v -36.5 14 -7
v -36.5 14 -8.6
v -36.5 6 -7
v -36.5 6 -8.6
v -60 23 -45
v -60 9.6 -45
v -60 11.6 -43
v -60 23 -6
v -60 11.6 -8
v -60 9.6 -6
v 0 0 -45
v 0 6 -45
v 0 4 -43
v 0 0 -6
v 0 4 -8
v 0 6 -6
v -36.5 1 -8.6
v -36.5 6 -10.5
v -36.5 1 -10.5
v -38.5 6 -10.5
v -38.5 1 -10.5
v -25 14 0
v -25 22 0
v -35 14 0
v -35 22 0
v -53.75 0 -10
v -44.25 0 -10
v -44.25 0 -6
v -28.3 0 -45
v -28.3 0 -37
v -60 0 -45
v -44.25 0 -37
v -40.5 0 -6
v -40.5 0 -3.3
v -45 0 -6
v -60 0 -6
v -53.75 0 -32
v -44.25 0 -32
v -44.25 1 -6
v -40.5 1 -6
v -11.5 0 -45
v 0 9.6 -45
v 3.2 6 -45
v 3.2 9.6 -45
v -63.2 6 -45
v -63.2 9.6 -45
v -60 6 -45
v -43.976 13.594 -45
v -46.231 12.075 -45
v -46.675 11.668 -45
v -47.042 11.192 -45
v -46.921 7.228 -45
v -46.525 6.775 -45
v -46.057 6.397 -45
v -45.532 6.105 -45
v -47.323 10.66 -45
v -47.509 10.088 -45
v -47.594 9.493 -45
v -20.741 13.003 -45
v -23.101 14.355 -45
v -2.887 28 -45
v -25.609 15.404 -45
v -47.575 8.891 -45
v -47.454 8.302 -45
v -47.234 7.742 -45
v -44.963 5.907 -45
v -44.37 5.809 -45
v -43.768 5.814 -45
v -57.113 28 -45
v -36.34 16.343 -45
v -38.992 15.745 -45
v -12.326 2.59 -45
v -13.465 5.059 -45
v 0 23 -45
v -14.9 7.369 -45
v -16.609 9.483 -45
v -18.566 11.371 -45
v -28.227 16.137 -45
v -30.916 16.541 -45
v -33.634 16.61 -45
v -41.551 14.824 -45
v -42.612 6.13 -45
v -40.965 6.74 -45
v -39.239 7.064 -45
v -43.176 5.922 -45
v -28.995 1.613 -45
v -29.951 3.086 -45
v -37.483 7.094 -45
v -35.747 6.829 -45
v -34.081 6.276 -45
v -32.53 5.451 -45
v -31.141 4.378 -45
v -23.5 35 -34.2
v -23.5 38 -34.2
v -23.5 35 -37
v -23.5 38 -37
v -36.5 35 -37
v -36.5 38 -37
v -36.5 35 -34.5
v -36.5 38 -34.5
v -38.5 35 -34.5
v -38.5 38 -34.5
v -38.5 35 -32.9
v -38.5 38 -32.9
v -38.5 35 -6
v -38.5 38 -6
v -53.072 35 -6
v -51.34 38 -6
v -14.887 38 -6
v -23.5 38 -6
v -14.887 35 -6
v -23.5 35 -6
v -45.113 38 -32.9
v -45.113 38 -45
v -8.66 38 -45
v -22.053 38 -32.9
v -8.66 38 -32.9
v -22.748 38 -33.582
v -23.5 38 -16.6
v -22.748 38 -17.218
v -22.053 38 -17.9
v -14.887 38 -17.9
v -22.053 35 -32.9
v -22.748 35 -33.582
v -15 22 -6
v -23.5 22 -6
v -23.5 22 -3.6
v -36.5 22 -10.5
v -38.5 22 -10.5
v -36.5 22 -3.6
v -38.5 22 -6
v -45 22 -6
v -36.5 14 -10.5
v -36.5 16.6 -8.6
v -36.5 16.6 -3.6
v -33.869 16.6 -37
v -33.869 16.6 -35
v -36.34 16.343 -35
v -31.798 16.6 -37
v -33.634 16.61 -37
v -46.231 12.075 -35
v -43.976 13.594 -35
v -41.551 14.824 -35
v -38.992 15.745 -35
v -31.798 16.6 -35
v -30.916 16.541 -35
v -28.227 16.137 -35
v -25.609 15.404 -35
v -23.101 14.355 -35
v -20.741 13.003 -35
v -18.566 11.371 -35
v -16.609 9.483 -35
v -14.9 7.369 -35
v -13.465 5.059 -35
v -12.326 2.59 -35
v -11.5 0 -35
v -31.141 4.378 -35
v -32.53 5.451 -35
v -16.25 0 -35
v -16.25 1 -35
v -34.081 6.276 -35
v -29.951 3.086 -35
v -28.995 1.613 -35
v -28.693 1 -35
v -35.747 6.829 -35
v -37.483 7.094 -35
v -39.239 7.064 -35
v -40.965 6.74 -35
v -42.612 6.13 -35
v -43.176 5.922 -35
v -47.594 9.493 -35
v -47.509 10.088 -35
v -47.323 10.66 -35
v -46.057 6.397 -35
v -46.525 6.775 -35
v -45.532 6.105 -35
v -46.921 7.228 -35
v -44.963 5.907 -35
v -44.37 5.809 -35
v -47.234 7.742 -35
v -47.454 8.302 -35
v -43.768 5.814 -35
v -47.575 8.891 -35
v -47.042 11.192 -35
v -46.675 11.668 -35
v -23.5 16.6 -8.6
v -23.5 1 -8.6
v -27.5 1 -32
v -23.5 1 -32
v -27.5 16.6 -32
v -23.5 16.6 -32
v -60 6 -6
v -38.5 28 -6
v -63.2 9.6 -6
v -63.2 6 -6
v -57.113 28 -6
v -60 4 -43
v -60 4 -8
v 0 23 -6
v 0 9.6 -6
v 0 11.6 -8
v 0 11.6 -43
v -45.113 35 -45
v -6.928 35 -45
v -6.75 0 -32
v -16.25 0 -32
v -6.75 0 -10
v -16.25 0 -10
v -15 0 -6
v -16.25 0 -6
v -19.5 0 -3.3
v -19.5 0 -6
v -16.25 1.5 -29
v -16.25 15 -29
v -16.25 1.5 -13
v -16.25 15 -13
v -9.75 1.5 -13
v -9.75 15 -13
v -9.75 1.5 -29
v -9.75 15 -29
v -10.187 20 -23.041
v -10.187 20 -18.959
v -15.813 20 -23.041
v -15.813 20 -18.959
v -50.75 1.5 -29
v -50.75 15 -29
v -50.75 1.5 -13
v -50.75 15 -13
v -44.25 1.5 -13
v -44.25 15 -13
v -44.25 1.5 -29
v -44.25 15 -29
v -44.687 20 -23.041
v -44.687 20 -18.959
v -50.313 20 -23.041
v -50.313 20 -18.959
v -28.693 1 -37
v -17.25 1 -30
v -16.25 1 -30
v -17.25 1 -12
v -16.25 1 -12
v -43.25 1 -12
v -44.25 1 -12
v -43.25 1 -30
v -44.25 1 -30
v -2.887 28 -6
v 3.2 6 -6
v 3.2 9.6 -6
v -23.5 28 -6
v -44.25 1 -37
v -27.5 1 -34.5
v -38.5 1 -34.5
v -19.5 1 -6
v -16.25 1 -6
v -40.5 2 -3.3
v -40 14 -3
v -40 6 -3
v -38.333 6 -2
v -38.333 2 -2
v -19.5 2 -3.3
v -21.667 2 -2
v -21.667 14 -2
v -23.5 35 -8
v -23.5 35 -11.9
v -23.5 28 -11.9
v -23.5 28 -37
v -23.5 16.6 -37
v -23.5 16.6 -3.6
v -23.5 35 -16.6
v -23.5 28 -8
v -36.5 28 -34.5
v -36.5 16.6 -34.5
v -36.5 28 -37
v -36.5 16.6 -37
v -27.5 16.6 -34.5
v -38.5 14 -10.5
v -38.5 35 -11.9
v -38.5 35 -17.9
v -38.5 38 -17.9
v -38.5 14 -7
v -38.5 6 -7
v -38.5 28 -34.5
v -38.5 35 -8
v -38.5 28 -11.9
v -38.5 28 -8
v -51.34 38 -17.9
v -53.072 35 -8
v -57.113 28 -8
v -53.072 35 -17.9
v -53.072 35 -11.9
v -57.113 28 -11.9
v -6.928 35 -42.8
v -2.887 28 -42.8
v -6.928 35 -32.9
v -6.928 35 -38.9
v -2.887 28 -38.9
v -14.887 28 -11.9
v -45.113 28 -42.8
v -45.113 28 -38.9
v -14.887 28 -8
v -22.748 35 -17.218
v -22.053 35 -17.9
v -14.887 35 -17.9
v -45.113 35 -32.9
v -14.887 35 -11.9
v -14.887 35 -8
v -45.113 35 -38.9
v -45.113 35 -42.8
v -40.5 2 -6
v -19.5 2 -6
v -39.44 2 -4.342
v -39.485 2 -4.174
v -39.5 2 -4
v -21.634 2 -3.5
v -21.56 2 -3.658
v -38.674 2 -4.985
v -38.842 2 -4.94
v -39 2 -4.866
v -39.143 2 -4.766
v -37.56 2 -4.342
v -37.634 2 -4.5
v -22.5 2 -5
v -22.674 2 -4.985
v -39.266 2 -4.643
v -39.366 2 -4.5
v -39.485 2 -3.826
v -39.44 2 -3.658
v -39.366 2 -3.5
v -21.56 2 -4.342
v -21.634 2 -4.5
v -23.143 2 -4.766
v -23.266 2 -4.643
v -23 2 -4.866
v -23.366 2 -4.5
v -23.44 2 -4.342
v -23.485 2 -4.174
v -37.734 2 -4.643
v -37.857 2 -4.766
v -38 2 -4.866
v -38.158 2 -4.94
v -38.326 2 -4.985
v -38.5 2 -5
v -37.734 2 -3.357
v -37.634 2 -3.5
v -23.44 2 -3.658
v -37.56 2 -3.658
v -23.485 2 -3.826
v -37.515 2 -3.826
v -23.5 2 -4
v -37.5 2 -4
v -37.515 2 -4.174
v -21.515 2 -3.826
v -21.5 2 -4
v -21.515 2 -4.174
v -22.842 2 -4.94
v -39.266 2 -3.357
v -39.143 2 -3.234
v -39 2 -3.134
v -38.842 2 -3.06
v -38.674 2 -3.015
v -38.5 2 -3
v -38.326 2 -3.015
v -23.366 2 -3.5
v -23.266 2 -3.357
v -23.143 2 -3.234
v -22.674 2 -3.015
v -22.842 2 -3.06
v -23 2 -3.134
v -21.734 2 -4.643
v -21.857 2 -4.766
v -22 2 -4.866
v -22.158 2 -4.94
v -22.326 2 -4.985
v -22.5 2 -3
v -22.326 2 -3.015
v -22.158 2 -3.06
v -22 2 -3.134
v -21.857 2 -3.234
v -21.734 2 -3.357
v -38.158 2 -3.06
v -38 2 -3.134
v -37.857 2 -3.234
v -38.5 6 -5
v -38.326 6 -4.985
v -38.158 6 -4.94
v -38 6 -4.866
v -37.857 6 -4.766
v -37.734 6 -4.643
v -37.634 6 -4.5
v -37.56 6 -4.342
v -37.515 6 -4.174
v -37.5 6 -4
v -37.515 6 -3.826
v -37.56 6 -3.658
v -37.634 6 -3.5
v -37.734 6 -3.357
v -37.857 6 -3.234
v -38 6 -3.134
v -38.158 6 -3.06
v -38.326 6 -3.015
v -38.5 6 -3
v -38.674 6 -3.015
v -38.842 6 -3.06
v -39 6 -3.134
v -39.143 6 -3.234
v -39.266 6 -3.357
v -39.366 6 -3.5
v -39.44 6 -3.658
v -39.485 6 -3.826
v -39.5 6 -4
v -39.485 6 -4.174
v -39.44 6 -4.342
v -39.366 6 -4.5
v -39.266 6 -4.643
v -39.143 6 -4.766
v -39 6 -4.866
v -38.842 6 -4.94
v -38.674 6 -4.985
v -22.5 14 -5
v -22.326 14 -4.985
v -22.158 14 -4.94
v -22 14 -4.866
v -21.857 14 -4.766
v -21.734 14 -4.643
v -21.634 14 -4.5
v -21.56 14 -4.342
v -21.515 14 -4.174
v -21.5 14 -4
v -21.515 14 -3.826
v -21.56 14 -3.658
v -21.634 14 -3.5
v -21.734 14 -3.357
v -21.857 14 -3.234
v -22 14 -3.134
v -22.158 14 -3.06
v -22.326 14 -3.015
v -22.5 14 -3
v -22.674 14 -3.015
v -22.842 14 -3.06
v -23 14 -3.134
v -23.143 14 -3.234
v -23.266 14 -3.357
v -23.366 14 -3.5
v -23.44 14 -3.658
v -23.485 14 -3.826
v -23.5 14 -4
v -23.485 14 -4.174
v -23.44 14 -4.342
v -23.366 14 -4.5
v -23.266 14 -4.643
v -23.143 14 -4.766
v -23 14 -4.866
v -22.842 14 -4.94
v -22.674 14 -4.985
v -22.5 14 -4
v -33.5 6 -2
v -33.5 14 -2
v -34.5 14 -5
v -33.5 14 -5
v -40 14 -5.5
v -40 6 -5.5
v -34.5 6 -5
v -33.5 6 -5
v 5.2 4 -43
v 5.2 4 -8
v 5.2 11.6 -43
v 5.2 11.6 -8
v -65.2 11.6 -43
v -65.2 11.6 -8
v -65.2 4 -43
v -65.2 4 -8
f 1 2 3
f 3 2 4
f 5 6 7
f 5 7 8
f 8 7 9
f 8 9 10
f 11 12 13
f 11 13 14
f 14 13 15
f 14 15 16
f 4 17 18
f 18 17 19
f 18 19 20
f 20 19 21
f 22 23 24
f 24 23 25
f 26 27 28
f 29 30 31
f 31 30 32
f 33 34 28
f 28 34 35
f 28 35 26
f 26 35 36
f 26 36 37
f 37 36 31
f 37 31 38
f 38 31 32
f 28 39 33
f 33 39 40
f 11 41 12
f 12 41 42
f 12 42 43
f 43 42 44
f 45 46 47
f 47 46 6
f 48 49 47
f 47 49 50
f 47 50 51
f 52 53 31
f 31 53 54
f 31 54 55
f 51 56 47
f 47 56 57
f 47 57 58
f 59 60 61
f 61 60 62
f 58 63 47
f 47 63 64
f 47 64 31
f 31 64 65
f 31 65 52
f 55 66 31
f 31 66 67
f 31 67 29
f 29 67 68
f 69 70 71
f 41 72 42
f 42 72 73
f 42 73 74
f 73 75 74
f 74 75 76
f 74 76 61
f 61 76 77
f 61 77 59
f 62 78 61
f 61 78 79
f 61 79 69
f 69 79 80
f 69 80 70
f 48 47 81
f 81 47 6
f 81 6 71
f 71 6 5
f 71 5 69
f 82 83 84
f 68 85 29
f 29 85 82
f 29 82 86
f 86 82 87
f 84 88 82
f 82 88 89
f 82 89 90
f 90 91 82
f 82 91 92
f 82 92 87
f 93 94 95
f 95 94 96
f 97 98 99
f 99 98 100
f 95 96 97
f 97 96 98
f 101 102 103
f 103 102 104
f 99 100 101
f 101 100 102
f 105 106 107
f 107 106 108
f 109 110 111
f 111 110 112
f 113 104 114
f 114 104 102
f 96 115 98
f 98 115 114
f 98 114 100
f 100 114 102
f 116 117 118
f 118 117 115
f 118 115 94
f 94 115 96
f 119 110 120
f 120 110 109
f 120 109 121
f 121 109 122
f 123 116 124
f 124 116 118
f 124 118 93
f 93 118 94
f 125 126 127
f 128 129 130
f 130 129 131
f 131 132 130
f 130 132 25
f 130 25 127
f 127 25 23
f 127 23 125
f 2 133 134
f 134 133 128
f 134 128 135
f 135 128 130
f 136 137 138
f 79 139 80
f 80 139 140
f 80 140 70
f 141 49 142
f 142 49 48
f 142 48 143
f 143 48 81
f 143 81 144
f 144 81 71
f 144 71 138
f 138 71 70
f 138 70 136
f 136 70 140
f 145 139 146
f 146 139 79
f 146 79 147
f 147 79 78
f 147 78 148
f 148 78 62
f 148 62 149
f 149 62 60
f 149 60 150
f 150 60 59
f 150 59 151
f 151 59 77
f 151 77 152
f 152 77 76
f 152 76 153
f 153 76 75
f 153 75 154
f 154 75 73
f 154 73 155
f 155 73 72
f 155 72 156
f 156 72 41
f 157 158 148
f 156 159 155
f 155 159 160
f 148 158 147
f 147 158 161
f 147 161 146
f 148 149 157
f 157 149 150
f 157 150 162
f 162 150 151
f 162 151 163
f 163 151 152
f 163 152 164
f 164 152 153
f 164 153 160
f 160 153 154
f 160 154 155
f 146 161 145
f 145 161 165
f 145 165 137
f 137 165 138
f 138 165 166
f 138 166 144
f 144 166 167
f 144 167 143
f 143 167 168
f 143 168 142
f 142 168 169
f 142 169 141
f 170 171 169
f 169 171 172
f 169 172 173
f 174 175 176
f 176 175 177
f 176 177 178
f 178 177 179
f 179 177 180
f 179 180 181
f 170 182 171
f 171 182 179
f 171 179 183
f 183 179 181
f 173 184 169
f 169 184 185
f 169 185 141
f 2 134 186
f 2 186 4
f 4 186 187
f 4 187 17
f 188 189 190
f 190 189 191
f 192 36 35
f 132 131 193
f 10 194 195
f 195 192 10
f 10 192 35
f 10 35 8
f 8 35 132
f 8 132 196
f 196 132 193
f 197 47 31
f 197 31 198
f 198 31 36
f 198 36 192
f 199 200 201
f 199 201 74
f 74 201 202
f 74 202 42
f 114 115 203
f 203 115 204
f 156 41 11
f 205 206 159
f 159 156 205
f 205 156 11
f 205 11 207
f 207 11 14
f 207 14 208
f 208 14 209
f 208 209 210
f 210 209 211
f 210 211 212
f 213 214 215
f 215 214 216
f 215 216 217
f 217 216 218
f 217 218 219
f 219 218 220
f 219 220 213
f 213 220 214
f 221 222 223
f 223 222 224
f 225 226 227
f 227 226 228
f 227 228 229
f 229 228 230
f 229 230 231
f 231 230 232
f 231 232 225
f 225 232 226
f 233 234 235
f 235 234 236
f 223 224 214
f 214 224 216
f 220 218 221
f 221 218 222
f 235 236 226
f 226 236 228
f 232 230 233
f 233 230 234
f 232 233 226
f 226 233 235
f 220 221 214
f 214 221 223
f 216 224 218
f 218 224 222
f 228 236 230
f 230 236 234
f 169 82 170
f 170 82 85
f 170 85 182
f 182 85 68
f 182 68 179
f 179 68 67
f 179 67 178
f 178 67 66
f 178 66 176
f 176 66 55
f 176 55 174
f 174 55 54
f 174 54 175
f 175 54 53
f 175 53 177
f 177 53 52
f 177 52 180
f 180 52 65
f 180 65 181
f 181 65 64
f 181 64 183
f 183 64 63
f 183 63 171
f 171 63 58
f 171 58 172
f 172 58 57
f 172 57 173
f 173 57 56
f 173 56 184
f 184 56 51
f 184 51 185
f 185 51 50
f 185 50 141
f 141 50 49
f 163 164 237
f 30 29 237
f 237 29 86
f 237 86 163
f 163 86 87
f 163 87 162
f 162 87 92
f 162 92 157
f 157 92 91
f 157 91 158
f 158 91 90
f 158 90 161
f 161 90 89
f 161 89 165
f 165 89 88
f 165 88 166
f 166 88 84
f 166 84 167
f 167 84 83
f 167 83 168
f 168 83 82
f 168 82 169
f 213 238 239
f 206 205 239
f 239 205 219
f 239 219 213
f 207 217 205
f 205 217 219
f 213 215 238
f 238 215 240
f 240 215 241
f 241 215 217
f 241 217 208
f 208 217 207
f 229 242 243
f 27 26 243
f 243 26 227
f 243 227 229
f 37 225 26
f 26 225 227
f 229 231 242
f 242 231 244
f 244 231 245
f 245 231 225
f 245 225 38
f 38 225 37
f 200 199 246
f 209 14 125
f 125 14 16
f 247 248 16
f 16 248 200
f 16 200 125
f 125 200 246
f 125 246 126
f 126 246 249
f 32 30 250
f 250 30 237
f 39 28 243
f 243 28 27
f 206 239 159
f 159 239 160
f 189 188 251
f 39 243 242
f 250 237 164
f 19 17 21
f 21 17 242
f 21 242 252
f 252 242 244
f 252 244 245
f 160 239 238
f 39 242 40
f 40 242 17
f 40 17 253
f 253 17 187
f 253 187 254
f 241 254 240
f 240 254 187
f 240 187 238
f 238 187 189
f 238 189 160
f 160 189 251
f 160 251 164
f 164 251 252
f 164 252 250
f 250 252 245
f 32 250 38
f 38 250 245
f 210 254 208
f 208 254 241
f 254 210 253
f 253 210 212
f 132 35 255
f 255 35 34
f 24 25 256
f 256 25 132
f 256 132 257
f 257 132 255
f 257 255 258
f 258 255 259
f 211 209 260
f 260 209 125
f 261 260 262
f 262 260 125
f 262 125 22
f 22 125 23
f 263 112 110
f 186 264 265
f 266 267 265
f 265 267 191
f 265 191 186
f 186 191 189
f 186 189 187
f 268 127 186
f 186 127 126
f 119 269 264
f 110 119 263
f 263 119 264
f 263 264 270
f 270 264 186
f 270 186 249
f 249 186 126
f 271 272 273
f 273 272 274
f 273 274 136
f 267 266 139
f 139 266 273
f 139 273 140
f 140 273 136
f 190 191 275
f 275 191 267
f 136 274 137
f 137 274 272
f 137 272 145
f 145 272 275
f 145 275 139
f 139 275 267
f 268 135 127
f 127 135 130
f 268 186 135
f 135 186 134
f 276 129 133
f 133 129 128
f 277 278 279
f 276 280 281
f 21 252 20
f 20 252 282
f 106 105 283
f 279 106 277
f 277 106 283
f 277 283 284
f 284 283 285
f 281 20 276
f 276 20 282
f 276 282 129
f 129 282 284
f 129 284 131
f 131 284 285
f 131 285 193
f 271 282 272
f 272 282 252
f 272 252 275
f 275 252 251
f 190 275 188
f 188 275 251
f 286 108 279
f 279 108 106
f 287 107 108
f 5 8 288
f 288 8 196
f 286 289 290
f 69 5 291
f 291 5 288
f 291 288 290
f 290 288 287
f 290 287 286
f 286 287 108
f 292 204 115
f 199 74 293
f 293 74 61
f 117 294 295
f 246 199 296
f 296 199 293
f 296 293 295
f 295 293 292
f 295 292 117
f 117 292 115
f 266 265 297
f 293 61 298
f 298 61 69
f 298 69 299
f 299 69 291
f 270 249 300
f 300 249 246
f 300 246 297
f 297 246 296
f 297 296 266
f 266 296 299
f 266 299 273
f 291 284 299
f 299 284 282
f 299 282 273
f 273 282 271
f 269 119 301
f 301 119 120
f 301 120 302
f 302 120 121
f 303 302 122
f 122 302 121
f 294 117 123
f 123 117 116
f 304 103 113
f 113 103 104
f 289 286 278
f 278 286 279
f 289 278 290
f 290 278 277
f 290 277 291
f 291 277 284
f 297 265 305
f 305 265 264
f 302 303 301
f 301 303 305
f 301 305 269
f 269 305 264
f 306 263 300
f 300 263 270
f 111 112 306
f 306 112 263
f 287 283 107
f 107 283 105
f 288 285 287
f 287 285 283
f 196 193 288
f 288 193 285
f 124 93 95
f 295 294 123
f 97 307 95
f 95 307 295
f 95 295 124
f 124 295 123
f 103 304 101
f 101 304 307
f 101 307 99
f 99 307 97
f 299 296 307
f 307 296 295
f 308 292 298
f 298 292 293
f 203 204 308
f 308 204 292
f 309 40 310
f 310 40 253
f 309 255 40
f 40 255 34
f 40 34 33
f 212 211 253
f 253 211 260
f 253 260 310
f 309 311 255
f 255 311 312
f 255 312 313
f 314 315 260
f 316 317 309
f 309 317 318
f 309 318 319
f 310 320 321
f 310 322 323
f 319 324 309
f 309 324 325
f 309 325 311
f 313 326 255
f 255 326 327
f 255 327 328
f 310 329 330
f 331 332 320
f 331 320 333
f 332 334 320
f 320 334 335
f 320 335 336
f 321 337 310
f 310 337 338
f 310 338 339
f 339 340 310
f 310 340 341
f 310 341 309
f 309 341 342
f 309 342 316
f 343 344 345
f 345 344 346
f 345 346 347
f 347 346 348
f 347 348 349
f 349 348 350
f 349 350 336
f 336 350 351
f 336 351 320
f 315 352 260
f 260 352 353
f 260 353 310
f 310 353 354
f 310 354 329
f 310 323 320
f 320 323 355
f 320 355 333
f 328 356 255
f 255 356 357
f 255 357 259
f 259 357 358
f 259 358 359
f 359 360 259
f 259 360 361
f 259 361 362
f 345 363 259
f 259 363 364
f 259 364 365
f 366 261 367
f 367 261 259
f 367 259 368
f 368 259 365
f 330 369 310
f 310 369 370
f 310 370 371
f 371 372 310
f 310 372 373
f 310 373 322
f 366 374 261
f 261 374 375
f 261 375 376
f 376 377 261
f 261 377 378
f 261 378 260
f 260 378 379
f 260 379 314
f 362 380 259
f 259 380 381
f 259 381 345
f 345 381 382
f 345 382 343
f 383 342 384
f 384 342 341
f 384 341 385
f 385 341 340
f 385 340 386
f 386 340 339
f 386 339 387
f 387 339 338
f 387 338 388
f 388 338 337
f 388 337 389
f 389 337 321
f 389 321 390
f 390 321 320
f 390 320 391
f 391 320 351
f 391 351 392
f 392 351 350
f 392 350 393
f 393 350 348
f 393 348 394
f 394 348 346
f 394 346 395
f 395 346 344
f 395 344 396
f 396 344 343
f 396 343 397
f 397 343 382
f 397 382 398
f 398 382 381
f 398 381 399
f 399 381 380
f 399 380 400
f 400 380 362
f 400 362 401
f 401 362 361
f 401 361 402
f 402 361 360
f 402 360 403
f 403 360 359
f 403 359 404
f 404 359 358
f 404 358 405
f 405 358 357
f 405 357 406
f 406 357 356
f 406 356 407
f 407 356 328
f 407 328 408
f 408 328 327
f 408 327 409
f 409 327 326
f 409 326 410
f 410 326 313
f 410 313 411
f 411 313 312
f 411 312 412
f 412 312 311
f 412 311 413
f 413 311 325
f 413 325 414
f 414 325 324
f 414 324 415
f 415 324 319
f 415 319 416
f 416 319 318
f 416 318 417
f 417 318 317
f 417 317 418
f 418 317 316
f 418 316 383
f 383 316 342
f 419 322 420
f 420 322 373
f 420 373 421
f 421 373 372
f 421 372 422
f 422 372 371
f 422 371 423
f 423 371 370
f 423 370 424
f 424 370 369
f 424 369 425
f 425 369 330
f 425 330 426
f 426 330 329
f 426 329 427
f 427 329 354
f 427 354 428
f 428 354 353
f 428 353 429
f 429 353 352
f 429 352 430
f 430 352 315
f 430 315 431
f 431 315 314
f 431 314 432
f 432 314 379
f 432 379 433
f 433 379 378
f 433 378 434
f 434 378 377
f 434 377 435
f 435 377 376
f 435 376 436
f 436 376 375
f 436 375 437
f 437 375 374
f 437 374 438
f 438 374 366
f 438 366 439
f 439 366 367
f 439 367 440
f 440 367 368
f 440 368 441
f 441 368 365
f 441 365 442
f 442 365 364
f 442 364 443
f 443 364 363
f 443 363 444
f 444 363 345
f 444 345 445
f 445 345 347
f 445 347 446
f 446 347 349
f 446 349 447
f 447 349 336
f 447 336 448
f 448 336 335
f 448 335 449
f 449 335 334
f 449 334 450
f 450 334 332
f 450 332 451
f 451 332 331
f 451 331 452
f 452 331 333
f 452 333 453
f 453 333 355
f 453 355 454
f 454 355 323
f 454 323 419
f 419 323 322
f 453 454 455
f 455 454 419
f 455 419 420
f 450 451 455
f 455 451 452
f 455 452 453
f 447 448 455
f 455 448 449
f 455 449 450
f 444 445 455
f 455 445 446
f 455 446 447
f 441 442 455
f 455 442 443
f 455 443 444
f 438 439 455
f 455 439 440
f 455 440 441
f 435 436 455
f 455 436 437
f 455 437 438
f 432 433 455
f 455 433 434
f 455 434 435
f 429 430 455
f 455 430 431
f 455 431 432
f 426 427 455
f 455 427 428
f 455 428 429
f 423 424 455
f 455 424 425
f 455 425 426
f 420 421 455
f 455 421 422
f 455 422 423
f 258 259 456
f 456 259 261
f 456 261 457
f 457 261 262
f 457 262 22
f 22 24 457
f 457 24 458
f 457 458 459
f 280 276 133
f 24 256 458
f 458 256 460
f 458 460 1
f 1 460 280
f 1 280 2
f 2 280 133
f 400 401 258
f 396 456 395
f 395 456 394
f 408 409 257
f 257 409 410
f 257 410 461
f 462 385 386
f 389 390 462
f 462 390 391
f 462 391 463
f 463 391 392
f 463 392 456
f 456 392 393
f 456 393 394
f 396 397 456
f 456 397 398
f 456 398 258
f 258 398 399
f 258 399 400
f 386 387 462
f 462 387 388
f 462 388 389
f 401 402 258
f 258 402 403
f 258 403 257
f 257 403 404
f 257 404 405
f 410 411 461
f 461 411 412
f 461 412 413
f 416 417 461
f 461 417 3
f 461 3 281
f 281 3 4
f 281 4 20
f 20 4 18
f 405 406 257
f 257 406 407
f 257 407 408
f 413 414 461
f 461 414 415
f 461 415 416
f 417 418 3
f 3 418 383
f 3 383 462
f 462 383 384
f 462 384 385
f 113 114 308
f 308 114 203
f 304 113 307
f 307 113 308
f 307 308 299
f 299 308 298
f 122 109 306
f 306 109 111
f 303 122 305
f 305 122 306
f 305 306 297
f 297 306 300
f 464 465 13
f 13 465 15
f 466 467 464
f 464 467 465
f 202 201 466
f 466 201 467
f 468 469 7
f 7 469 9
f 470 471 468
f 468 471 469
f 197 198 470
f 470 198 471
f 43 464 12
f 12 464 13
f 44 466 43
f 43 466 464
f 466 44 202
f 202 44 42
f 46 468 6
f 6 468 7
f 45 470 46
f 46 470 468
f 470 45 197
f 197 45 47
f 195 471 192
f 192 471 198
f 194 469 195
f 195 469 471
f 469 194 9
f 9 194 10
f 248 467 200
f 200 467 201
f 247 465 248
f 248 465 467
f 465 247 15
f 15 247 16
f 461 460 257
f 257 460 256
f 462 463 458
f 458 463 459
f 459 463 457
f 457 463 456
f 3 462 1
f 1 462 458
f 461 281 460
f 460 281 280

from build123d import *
from OCP.BRepFilletAPI import BRepFilletAPI_MakeChamfer

# Parameters (mm, degrees)
SKETCH1_W                = 60
SKETCH1_H                = 45
BOSS_EXTRUDE1_DEPTH      = 30
SKETCH2_W                = 6.5
SKETCH2_H                = 16
CUT_EXTRUDE1_DEPTH       = 20
CHAMFER1_SIZE            = 5
CHAMFER1_SIZE2           = 0.437443318
CHAMFER2_SIZE            = 5
CHAMFER2_SIZE2           = 5.958767963
CUT_EXTRUDE2_DEPTH       = 10
CHAMFER3_SIZE            = 3
CHAMFER3_SIZE2           = 1.5
CUT_EXTRUDE3_REACH       = 82.777
SKETCH6_W                = 28
SKETCH6_H                = 31
CUT_EXTRUDE4_DEPTH       = 1
BOSS_EXTRUDE2_DEPTH      = 22
CUT_EXTRUDE5_REACH       = 80.16
SKETCH7_W                = 13
SKETCH7_H                = 23.4
CUT_EXTRUDE6_REACH       = 95.485
CUT_EXTRUDE6_START       = -15.6
SKETCH8_W                = 13
SKETCH8_H                = 5
CUT_EXTRUDE7_REACH       = 80.16
BOSS_EXTRUDE3_DEPTH      = 16
CHAMFER6_SIZE            = 15
CHAMFER6_SIZE2           = 8.660254038
SKETCH14_R               = 11
CUT_EXTRUDE8_DEPTH       = 10
SKETCH15_W               = 70
SKETCH15_H               = 15
CUT_EXTRUDE9_DEPTH       = 10
CUT_EXTRUDE10_DEPTH      = 71.3651192
CUT_EXTRUDE10_DEPTH_BACK = 71.3651192
SKETCH16_W               = 6
SKETCH16_H               = 7
SKETCH16_W_2             = 2
CUT_EXTRUDE11_DEPTH      = 71.3651192
CUT_EXTRUDE11_DEPTH_BACK = 71.3651192
SKETCH17_W               = 6
SKETCH17_H               = 7
SKETCH17_W_2             = 2.2
SKETCH18_W               = 21
SKETCH18_H               = 8
CUT_EXTRUDE12_DEPTH      = 2
SKETCH19_R               = 1
SKETCH19_W               = 18.34106835
SKETCH19_H               = 5.189180314
CUT_EXTRUDE13_DEPTH      = 12
CUT_EXTRUDE14_REACH      = 80.957
SKETCH20_W               = 2
SKETCH20_H               = 8
CUT_EXTRUDE15_REACH      = 86.077
SKETCH21_W               = 16.800854114
SKETCH21_H               = 23.16859679
SKETCH21_W_2             = 25.313746617
SKETCH21_H_2             = 27.258932471
SKETCH22_W               = 5.2
SKETCH22_H               = 7.6
BOSS_EXTRUDE4_DEPTH      = 39
CHAMFER7_SIZE            = 2
SKETCH23_W               = 6.5
SKETCH23_H               = 8
CUT_EXTRUDE16_DEPTH      = 3
CHAMFER8_SIZE            = 2


with BuildPart() as part:
    # Sketch1 → Boss-Extrude1 (new body)
    with BuildSketch(Plane(origin=(0, 0, 0), x_dir=(1, 0, 0), z_dir=(0, 1, 0))):
        with Locations((-30, 22.5)):
            Rectangle(SKETCH1_W, SKETCH1_H)
    extrude(amount=BOSS_EXTRUDE1_DEPTH)

    # Sketch2 → Cut-Extrude1 (cut)
    with BuildSketch(Plane(origin=(0, 0, 0), x_dir=(-1, 0, 0), z_dir=(0, -1, 0))):
        with Locations((47.5, 21)):
            Rectangle(SKETCH2_W, SKETCH2_H)
        with Locations((13, 21)):
            Rectangle(SKETCH2_W, SKETCH2_H)
    extrude(amount=-CUT_EXTRUDE1_DEPTH, mode=Mode.SUBTRACT)

    # Chamfer1: one chamfer whose edges measure the first distance from different faces: ONE call of the kernel's chamfer builder (chamfer() names one face for all edges)
    chamfer1_edges_1 = [part.edges().sort_by_distance(p)[0] for p in [
        (-50.75, 20, -21),
    ]]
    chamfer1_side_1 = [part.faces().sort_by_distance(p)[0] for p in [
        (-50.75, 10, -21),
    ]]
    chamfer1_edges_2 = [part.edges().sort_by_distance(p)[0] for p in [
        (-44.25, 20, -21),
    ]]
    chamfer1_side_2 = [part.faces().sort_by_distance(p)[0] for p in [
        (-44.25, 10, -21),
    ]]
    chamfer1_edges_3 = [part.edges().sort_by_distance(p)[0] for p in [
        (-16.25, 20, -21),
    ]]
    chamfer1_side_3 = [part.faces().sort_by_distance(p)[0] for p in [
        (-16.25, 10, -21),
    ]]
    chamfer1_edges_4 = [part.edges().sort_by_distance(p)[0] for p in [
        (-9.75, 20, -21),
    ]]
    chamfer1_side_4 = [part.faces().sort_by_distance(p)[0] for p in [
        (-9.75, 10, -21),
    ]]
    chamfer1 = BRepFilletAPI_MakeChamfer(part.part.solid().wrapped)
    for e in chamfer1_edges_1:
        chamfer1.Add(CHAMFER1_SIZE, CHAMFER1_SIZE2, e.wrapped, chamfer1_side_1[0].wrapped)  # the first distance lies on this face
    for e in chamfer1_edges_2:
        chamfer1.Add(CHAMFER1_SIZE, CHAMFER1_SIZE2, e.wrapped, chamfer1_side_2[0].wrapped)  # the first distance lies on this face
    for e in chamfer1_edges_3:
        chamfer1.Add(CHAMFER1_SIZE, CHAMFER1_SIZE2, e.wrapped, chamfer1_side_3[0].wrapped)  # the first distance lies on this face
    for e in chamfer1_edges_4:
        chamfer1.Add(CHAMFER1_SIZE, CHAMFER1_SIZE2, e.wrapped, chamfer1_side_4[0].wrapped)  # the first distance lies on this face
    add(Compound.cast(chamfer1.Shape()), mode=Mode.REPLACE)

    # Chamfer2: one chamfer whose edges measure the first distance from different faces: ONE call of the kernel's chamfer builder (chamfer() names one face for all edges)
    chamfer2_edges_1 = [part.edges().sort_by_distance(p)[0] for p in [
        (-47.5, 20, -29),
    ]]
    chamfer2_side_1 = [part.faces().sort_by_distance(p)[0] for p in [
        (-47.5, 9.857394508, -29),
    ]]
    chamfer2_edges_2 = [part.edges().sort_by_distance(p)[0] for p in [
        (-13, 20, -29),
    ]]
    chamfer2_side_2 = [part.faces().sort_by_distance(p)[0] for p in [
        (-13, 9.857394508, -29),
    ]]
    chamfer2_edges_3 = [part.edges().sort_by_distance(p)[0] for p in [
        (-13, 20, -13),
    ]]
    chamfer2_side_3 = [part.faces().sort_by_distance(p)[0] for p in [
        (-13, 9.857394508, -13),
    ]]
    chamfer2_edges_4 = [part.edges().sort_by_distance(p)[0] for p in [
        (-47.5, 20, -13),
    ]]
    chamfer2_side_4 = [part.faces().sort_by_distance(p)[0] for p in [
        (-47.5, 9.857394508, -13),
    ]]
    chamfer2 = BRepFilletAPI_MakeChamfer(part.part.solid().wrapped)
    for e in chamfer2_edges_1:
        chamfer2.Add(CHAMFER2_SIZE, CHAMFER2_SIZE2, e.wrapped, chamfer2_side_1[0].wrapped)  # the first distance lies on this face
    for e in chamfer2_edges_2:
        chamfer2.Add(CHAMFER2_SIZE, CHAMFER2_SIZE2, e.wrapped, chamfer2_side_2[0].wrapped)  # the first distance lies on this face
    for e in chamfer2_edges_3:
        chamfer2.Add(CHAMFER2_SIZE, CHAMFER2_SIZE2, e.wrapped, chamfer2_side_3[0].wrapped)  # the first distance lies on this face
    for e in chamfer2_edges_4:
        chamfer2.Add(CHAMFER2_SIZE, CHAMFER2_SIZE2, e.wrapped, chamfer2_side_4[0].wrapped)  # the first distance lies on this face
    add(Compound.cast(chamfer2.Shape()), mode=Mode.REPLACE)

    # Sketch4 → Cut-Extrude2 (cut)
    with BuildSketch(Plane(origin=(0, 0, -45), x_dir=(-1, 0, 0), z_dir=(0, 0, -1))):
        with BuildLine():
            Line((11.5, 0), (28.3, 0))
            ThreePointArc((28.3, 0), (34.080602383, 6.276082414), (42.61191296, 6.13008847))
            ThreePointArc((42.61191296, 6.13008847), (47.088831578, 7.478397416), (46.230644896, 12.074510224))
            ThreePointArc((46.230644896, 12.074510224), (25.608734298, 15.404376803), (11.5, 0))
        make_face()
    extrude(amount=-CUT_EXTRUDE2_DEPTH, mode=Mode.SUBTRACT)

    # Chamfer3
    chamfer3_edges = [part.edges().sort_by_distance(p)[0] for p in [
        (-50.75, 0, -21),
        (-47.5, 0, -29),
        (-44.25, 0, -21),
        (-47.5, 0, -13),
        (-16.25, 0, -21),
        (-13, 0, -29),
        (-9.75, 0, -21),
        (-13, 0, -13),
    ]]
    chamfer3_side = [part.faces().sort_by_distance(p)[0] for p in [
        (-30.707745267, 0, -21.36919105),
    ]]
    chamfer(chamfer3_edges, length=CHAMFER3_SIZE, length2=CHAMFER3_SIZE2, reference=chamfer3_side[0])

    # Sketch5 → Cut-Extrude3 (cut, up to next)
    with BuildSketch(Plane.ZY.offset(60), mode=Mode.PRIVATE) as cut_extrude3_sk1:
        Polygon((-45, 30), (0, 30), (0, 0), (-6, 0), (-6, 22), (-45, 22), align=None)
    cut_extrude3_tool1 = extrude(cut_extrude3_sk1.sketch, amount=-CUT_EXTRUDE3_REACH, mode=Mode.PRIVATE) & part.part
    add(cut_extrude3_tool1.solids().sort_by_distance((-60, 29.459167, -22.5))[0], mode=Mode.SUBTRACT)

    # Sketch6 → Cut-Extrude4 (cut)
    with BuildSketch(Plane(origin=(0, 0, 0), x_dir=(-1, 0, 0), z_dir=(0, -1, 0))):
        with Locations((30.25, 21.5)):
            Rectangle(SKETCH6_W, SKETCH6_H)
    extrude(amount=-CUT_EXTRUDE4_DEPTH, mode=Mode.SUBTRACT)

    # Sketch12 → Boss-Extrude2 (add)
    with BuildSketch(Plane.XZ):
        Polygon((-45, -6), (-35, 0), (-25, 0), (-15, -6), align=None)
    extrude(amount=-BOSS_EXTRUDE2_DEPTH)

    # Sketch7 → Cut-Extrude5 (cut, up to next)
    with BuildSketch(Plane(origin=(0, 22, 0), x_dir=(1, 0, 0), z_dir=(0, 1, 0)), mode=Mode.PRIVATE) as cut_extrude5_sk1:
        with Locations((-30, 20.3)):
            Rectangle(SKETCH7_W, SKETCH7_H)
    cut_extrude5_tool1 = extrude(cut_extrude5_sk1.sketch, amount=-CUT_EXTRUDE5_REACH, mode=Mode.PRIVATE) & part.part
    add(cut_extrude5_tool1.solids().sort_by_distance((-30, 22, -20.3))[0], mode=Mode.SUBTRACT)

    # Sketch8 → Cut-Extrude6 (cut, up to next)
    with BuildSketch(Plane.XZ.offset(-1).offset(CUT_EXTRUDE6_START), mode=Mode.PRIVATE) as cut_extrude6_sk1:
        with Locations((-30, -6.1)):
            Rectangle(SKETCH8_W, SKETCH8_H)
    cut_extrude6_tool1 = extrude(cut_extrude6_sk1.sketch, amount=-CUT_EXTRUDE6_REACH, mode=Mode.PRIVATE) & part.part
    # Sketch8 → Cut-Extrude6 (cut, up to next)
    with BuildSketch(Plane.XZ.offset(-1).offset(CUT_EXTRUDE6_START), mode=Mode.PRIVATE) as cut_extrude6_sk2:
        with Locations((-30, -34.5)):
            Rectangle(SKETCH8_W, SKETCH8_H)
    cut_extrude6_tool2 = extrude(cut_extrude6_sk2.sketch, amount=-CUT_EXTRUDE6_REACH, mode=Mode.PRIVATE) & part.part
    add(cut_extrude6_tool1.solids().sort_by_distance((-30, 16.6, -6.1))[0], mode=Mode.SUBTRACT)
    add(cut_extrude6_tool2.solids().sort_by_distance((-30, 16.6, -34.5))[0], mode=Mode.SUBTRACT)

    # Sketch10 → Cut-Extrude7 (cut, up to next)
    with BuildSketch(Plane(origin=(0, 22, 0), x_dir=(1, 0, 0), z_dir=(0, 1, 0)), mode=Mode.PRIVATE) as cut_extrude7_sk1:
        Polygon((-27.5, 32), (-27.5, 34.5), (-38.5, 34.5), (-38.5, 10.5), (-36.5, 10.5), (-36.5, 32), align=None)
    cut_extrude7_tool1 = extrude(cut_extrude7_sk1.sketch, amount=-CUT_EXTRUDE7_REACH, mode=Mode.PRIVATE) & part.part
    add(cut_extrude7_tool1.solids().sort_by_distance((-27.764008, 22, -33.25))[0], mode=Mode.SUBTRACT)

    # Sketch13 → Boss-Extrude3 (add)
    with BuildSketch(Plane(origin=(0, 22, 0), x_dir=(1, 0, 0), z_dir=(0, 1, 0))):
        Polygon((-60, 45), (0, 45), (0, 6), (-15, 6), (-23.5, 6), (-23.5, 37), (-36.5, 37), (-36.5, 34.5), (-38.5, 34.5), (-38.5, 6), (-60, 6), align=None)
    extrude(amount=BOSS_EXTRUDE3_DEPTH)

    # Chamfer6: one chamfer whose edges measure the first distance from different faces: ONE call of the kernel's chamfer builder (chamfer() names one face for all edges)
    chamfer6_edges_1 = [part.edges().sort_by_distance(p)[0] for p in [
        (-60, 38, -25.5),
    ]]
    chamfer6_side_1 = [part.faces().sort_by_distance(p)[0] for p in [
        (-60, 19, -25.5),
    ]]
    chamfer6_edges_2 = [part.edges().sort_by_distance(p)[0] for p in [
        (0, 38, -25.5),
    ]]
    chamfer6_side_2 = [part.faces().sort_by_distance(p)[0] for p in [
        (0, 19, -25.5),
    ]]
    chamfer6 = BRepFilletAPI_MakeChamfer(part.part.solid().wrapped)
    for e in chamfer6_edges_1:
        chamfer6.Add(CHAMFER6_SIZE, CHAMFER6_SIZE2, e.wrapped, chamfer6_side_1[0].wrapped)  # the first distance lies on this face
    for e in chamfer6_edges_2:
        chamfer6.Add(CHAMFER6_SIZE, CHAMFER6_SIZE2, e.wrapped, chamfer6_side_2[0].wrapped)  # the first distance lies on this face
    add(Compound.cast(chamfer6.Shape()), mode=Mode.REPLACE)

    # Sketch14 → Cut-Extrude8 (cut)
    with BuildSketch(Plane(origin=(0, 38, 0), x_dir=(1, 0, 0), z_dir=(0, 1, 0))):
        with Locations((-30.1, 25.4)):
            Circle(SKETCH14_R)
    extrude(amount=-CUT_EXTRUDE8_DEPTH, mode=Mode.SUBTRACT)

    # Sketch15 → Cut-Extrude9 (cut)
    with BuildSketch(Plane(origin=(0, 38, 0), x_dir=(1, 0, 0), z_dir=(0, 1, 0))):
        with Locations((-30.1, 25.4)):
            Rectangle(SKETCH15_W, SKETCH15_H)
    extrude(amount=-CUT_EXTRUDE9_DEPTH, mode=Mode.SUBTRACT)

    # Sketch16 → Cut-Extrude10 (cut, two sides: drawn at the far end of the back side and taken through both)
    with BuildSketch(Plane(origin=(-38.5, 0, 0), x_dir=(0, 0, -1), z_dir=(1, 0, 0)).offset(-CUT_EXTRUDE10_DEPTH_BACK)):
        with Locations((14.9, 31.5)):
            Rectangle(SKETCH16_W, SKETCH16_H)
        with Locations((7, 31.5)):
            Rectangle(SKETCH16_W_2, SKETCH16_H)
    extrude(amount=CUT_EXTRUDE10_DEPTH + CUT_EXTRUDE10_DEPTH_BACK, mode=Mode.SUBTRACT)

    # Sketch17 → Cut-Extrude11 (cut, two sides: drawn at the far end of the back side and taken through both)
    with BuildSketch(Plane(origin=(-38.5, 0, 0), x_dir=(0, 0, -1), z_dir=(1, 0, 0)).offset(-CUT_EXTRUDE11_DEPTH_BACK)):
        with Locations((35.9, 31.5)):
            Rectangle(SKETCH17_W, SKETCH17_H)
        with Locations((43.9, 31.5)):
            Rectangle(SKETCH17_W_2, SKETCH17_H)
    extrude(amount=CUT_EXTRUDE11_DEPTH + CUT_EXTRUDE11_DEPTH_BACK, mode=Mode.SUBTRACT)

    # Sketch18 → Cut-Extrude12 (cut)
    with BuildSketch(Plane.XZ):
        with Locations((-30, -2)):
            Rectangle(SKETCH18_W, SKETCH18_H)
    extrude(amount=-CUT_EXTRUDE12_DEPTH, mode=Mode.SUBTRACT)

    # Sketch19 → Cut-Extrude13 (cut)
    with BuildSketch(Plane.XZ.offset(-2)):
        with Locations(Location((-38.5, -4, 0), (0, 0, 270))):
            Circle(SKETCH19_R)
        with Locations(Location((-22.5, -4, 0), (0, 0, 270))):
            Circle(SKETCH19_R)
        with Locations((-30, 0.594590157)):
            Rectangle(SKETCH19_W, SKETCH19_H)
    extrude(amount=-CUT_EXTRUDE13_DEPTH, mode=Mode.SUBTRACT)

    # Sketch20 → Cut-Extrude14 (cut, up to next)
    with BuildSketch(Plane(origin=(0, 0, -10.5), x_dir=(-1, 0, 0), z_dir=(0, 0, -1)), mode=Mode.PRIVATE) as cut_extrude14_sk1:
        with Locations((37.5, 10)):
            Rectangle(SKETCH20_W, SKETCH20_H)
    cut_extrude14_tool1 = extrude(cut_extrude14_sk1.sketch, amount=-CUT_EXTRUDE14_REACH, mode=Mode.PRIVATE) & part.part
    add(cut_extrude14_tool1.solids().sort_by_distance((-37.5, 10, -10.5))[0], mode=Mode.SUBTRACT)

    # Cut-Extrude15: up to this face of the body (flat: up to its plane)
    cut_extrude15_end = Plane(part.part.faces().sort_by_distance((-30, 28, -43.9))[0])
    # Sketch21 → Cut-Extrude15 (cut, up to the picked face)
    with BuildSketch(Plane(origin=(0, 38, 0), x_dir=(1, 0, 0), z_dir=(0, 1, 0)), mode=Mode.PRIVATE) as cut_extrude15_sk1:
        with Locations((-53.513675711, 40.114245734)):
            Rectangle(SKETCH21_W, SKETCH21_H)
    cut_extrude15_tool1 = split(extrude(cut_extrude15_sk1.sketch, amount=-CUT_EXTRUDE15_REACH, mode=Mode.PRIVATE), bisect_by=cut_extrude15_end, keep=Keep.BOTH, mode=Mode.PRIVATE)
    # Sketch21 → Cut-Extrude15 (cut, up to the picked face)
    with BuildSketch(Plane(origin=(0, 38, 0), x_dir=(1, 0, 0), z_dir=(0, 1, 0)), mode=Mode.PRIVATE) as cut_extrude15_sk2:
        with Locations((-2.229878037, 8.087664752)):
            Rectangle(SKETCH21_W_2, SKETCH21_H_2)
    cut_extrude15_tool2 = split(extrude(cut_extrude15_sk2.sketch, amount=-CUT_EXTRUDE15_REACH, mode=Mode.PRIVATE), bisect_by=cut_extrude15_end, keep=Keep.BOTH, mode=Mode.PRIVATE)
    add(cut_extrude15_tool1.solids().sort_by(Axis((-53.513676, 38, -40.114246), (0, -1, 0)))[0], mode=Mode.SUBTRACT)
    add(cut_extrude15_tool2.solids().sort_by(Axis((-2.229878, 38, -8.087665), (0, -1, 0)))[0], mode=Mode.SUBTRACT)

    # Sketch22 → Boss-Extrude4 (add)
    with BuildSketch(Plane(origin=(0, 0, -45), x_dir=(-1, 0, 0), z_dir=(0, 0, -1))):
        with Locations((-2.6, 7.8)):
            Rectangle(SKETCH22_W, SKETCH22_H)
        with Locations((62.6, 7.8)):
            Rectangle(SKETCH22_W, SKETCH22_H)
    extrude(amount=-BOSS_EXTRUDE4_DEPTH)

    # Chamfer7
    chamfer7_edges = [part.edges().sort_by_distance(p)[0] for p in [
        (2.6, 11.6, -45),
        (5.2, 7.8, -45),
        (2.6, 4, -45),
        (2.6, 4, -6),
        (5.2, 7.8, -6),
        (2.6, 11.6, -6),
        (-62.6, 4, -45),
        (-65.2, 7.8, -45),
        (-62.6, 11.6, -45),
        (-62.6, 11.6, -6),
        (-65.2, 7.8, -6),
        (-62.6, 4, -6),
    ]]
    chamfer(chamfer7_edges, length=CHAMFER7_SIZE)

    # Sketch23 → Cut-Extrude16 (cut)
    with BuildSketch(Plane.XY.offset(-2)):
        with Locations((-36.75, 10)):
            Rectangle(SKETCH23_W, SKETCH23_H)
    extrude(amount=-CUT_EXTRUDE16_DEPTH, mode=Mode.SUBTRACT)

    # Chamfer8
    # the kernel refuses this chamfer: 2 mm, written as the material it takes off along each edge
    with BuildSketch(Plane(origin=(-36.5, 6, -5), x_dir=(-0.027495876610585623, 0, -0.9996219169112968), z_dir=(0, 1, 0))) as chamfer8_piece_1:
        Polygon((CHAMFER8_SIZE * 0.999621916911, -CHAMFER8_SIZE * 0.0274958766106), (-CHAMFER8_SIZE * 0.0274958766106, -CHAMFER8_SIZE * 0.999621916911), (0, 0), align=None)
    extrude(amount=8, mode=Mode.SUBTRACT)
    with BuildSketch(Plane(origin=(-38.5, 6, -5), x_dir=(0.027495876610585647, 0, -0.9996219169112968), z_dir=(0, 1, 0))) as chamfer8_piece_2_section:
        Polygon((CHAMFER8_SIZE * 0.999621916911, CHAMFER8_SIZE * 0.0274958766106), (-CHAMFER8_SIZE * 0.0274958766106, CHAMFER8_SIZE * 0.999621916911), (0, 0), align=None)
    chamfer8_piece_2 = extrude(amount=8, mode=Mode.PRIVATE)
    chamfer8_piece_2 = split(chamfer8_piece_2, bisect_by=Plane(origin=(-40, 10, -5.70391822), z_dir=(1, 0, 0)), keep=Keep.TOP, mode=Mode.PRIVATE)
    add(chamfer8_piece_2, mode=Mode.SUBTRACT)


solid = part.part
